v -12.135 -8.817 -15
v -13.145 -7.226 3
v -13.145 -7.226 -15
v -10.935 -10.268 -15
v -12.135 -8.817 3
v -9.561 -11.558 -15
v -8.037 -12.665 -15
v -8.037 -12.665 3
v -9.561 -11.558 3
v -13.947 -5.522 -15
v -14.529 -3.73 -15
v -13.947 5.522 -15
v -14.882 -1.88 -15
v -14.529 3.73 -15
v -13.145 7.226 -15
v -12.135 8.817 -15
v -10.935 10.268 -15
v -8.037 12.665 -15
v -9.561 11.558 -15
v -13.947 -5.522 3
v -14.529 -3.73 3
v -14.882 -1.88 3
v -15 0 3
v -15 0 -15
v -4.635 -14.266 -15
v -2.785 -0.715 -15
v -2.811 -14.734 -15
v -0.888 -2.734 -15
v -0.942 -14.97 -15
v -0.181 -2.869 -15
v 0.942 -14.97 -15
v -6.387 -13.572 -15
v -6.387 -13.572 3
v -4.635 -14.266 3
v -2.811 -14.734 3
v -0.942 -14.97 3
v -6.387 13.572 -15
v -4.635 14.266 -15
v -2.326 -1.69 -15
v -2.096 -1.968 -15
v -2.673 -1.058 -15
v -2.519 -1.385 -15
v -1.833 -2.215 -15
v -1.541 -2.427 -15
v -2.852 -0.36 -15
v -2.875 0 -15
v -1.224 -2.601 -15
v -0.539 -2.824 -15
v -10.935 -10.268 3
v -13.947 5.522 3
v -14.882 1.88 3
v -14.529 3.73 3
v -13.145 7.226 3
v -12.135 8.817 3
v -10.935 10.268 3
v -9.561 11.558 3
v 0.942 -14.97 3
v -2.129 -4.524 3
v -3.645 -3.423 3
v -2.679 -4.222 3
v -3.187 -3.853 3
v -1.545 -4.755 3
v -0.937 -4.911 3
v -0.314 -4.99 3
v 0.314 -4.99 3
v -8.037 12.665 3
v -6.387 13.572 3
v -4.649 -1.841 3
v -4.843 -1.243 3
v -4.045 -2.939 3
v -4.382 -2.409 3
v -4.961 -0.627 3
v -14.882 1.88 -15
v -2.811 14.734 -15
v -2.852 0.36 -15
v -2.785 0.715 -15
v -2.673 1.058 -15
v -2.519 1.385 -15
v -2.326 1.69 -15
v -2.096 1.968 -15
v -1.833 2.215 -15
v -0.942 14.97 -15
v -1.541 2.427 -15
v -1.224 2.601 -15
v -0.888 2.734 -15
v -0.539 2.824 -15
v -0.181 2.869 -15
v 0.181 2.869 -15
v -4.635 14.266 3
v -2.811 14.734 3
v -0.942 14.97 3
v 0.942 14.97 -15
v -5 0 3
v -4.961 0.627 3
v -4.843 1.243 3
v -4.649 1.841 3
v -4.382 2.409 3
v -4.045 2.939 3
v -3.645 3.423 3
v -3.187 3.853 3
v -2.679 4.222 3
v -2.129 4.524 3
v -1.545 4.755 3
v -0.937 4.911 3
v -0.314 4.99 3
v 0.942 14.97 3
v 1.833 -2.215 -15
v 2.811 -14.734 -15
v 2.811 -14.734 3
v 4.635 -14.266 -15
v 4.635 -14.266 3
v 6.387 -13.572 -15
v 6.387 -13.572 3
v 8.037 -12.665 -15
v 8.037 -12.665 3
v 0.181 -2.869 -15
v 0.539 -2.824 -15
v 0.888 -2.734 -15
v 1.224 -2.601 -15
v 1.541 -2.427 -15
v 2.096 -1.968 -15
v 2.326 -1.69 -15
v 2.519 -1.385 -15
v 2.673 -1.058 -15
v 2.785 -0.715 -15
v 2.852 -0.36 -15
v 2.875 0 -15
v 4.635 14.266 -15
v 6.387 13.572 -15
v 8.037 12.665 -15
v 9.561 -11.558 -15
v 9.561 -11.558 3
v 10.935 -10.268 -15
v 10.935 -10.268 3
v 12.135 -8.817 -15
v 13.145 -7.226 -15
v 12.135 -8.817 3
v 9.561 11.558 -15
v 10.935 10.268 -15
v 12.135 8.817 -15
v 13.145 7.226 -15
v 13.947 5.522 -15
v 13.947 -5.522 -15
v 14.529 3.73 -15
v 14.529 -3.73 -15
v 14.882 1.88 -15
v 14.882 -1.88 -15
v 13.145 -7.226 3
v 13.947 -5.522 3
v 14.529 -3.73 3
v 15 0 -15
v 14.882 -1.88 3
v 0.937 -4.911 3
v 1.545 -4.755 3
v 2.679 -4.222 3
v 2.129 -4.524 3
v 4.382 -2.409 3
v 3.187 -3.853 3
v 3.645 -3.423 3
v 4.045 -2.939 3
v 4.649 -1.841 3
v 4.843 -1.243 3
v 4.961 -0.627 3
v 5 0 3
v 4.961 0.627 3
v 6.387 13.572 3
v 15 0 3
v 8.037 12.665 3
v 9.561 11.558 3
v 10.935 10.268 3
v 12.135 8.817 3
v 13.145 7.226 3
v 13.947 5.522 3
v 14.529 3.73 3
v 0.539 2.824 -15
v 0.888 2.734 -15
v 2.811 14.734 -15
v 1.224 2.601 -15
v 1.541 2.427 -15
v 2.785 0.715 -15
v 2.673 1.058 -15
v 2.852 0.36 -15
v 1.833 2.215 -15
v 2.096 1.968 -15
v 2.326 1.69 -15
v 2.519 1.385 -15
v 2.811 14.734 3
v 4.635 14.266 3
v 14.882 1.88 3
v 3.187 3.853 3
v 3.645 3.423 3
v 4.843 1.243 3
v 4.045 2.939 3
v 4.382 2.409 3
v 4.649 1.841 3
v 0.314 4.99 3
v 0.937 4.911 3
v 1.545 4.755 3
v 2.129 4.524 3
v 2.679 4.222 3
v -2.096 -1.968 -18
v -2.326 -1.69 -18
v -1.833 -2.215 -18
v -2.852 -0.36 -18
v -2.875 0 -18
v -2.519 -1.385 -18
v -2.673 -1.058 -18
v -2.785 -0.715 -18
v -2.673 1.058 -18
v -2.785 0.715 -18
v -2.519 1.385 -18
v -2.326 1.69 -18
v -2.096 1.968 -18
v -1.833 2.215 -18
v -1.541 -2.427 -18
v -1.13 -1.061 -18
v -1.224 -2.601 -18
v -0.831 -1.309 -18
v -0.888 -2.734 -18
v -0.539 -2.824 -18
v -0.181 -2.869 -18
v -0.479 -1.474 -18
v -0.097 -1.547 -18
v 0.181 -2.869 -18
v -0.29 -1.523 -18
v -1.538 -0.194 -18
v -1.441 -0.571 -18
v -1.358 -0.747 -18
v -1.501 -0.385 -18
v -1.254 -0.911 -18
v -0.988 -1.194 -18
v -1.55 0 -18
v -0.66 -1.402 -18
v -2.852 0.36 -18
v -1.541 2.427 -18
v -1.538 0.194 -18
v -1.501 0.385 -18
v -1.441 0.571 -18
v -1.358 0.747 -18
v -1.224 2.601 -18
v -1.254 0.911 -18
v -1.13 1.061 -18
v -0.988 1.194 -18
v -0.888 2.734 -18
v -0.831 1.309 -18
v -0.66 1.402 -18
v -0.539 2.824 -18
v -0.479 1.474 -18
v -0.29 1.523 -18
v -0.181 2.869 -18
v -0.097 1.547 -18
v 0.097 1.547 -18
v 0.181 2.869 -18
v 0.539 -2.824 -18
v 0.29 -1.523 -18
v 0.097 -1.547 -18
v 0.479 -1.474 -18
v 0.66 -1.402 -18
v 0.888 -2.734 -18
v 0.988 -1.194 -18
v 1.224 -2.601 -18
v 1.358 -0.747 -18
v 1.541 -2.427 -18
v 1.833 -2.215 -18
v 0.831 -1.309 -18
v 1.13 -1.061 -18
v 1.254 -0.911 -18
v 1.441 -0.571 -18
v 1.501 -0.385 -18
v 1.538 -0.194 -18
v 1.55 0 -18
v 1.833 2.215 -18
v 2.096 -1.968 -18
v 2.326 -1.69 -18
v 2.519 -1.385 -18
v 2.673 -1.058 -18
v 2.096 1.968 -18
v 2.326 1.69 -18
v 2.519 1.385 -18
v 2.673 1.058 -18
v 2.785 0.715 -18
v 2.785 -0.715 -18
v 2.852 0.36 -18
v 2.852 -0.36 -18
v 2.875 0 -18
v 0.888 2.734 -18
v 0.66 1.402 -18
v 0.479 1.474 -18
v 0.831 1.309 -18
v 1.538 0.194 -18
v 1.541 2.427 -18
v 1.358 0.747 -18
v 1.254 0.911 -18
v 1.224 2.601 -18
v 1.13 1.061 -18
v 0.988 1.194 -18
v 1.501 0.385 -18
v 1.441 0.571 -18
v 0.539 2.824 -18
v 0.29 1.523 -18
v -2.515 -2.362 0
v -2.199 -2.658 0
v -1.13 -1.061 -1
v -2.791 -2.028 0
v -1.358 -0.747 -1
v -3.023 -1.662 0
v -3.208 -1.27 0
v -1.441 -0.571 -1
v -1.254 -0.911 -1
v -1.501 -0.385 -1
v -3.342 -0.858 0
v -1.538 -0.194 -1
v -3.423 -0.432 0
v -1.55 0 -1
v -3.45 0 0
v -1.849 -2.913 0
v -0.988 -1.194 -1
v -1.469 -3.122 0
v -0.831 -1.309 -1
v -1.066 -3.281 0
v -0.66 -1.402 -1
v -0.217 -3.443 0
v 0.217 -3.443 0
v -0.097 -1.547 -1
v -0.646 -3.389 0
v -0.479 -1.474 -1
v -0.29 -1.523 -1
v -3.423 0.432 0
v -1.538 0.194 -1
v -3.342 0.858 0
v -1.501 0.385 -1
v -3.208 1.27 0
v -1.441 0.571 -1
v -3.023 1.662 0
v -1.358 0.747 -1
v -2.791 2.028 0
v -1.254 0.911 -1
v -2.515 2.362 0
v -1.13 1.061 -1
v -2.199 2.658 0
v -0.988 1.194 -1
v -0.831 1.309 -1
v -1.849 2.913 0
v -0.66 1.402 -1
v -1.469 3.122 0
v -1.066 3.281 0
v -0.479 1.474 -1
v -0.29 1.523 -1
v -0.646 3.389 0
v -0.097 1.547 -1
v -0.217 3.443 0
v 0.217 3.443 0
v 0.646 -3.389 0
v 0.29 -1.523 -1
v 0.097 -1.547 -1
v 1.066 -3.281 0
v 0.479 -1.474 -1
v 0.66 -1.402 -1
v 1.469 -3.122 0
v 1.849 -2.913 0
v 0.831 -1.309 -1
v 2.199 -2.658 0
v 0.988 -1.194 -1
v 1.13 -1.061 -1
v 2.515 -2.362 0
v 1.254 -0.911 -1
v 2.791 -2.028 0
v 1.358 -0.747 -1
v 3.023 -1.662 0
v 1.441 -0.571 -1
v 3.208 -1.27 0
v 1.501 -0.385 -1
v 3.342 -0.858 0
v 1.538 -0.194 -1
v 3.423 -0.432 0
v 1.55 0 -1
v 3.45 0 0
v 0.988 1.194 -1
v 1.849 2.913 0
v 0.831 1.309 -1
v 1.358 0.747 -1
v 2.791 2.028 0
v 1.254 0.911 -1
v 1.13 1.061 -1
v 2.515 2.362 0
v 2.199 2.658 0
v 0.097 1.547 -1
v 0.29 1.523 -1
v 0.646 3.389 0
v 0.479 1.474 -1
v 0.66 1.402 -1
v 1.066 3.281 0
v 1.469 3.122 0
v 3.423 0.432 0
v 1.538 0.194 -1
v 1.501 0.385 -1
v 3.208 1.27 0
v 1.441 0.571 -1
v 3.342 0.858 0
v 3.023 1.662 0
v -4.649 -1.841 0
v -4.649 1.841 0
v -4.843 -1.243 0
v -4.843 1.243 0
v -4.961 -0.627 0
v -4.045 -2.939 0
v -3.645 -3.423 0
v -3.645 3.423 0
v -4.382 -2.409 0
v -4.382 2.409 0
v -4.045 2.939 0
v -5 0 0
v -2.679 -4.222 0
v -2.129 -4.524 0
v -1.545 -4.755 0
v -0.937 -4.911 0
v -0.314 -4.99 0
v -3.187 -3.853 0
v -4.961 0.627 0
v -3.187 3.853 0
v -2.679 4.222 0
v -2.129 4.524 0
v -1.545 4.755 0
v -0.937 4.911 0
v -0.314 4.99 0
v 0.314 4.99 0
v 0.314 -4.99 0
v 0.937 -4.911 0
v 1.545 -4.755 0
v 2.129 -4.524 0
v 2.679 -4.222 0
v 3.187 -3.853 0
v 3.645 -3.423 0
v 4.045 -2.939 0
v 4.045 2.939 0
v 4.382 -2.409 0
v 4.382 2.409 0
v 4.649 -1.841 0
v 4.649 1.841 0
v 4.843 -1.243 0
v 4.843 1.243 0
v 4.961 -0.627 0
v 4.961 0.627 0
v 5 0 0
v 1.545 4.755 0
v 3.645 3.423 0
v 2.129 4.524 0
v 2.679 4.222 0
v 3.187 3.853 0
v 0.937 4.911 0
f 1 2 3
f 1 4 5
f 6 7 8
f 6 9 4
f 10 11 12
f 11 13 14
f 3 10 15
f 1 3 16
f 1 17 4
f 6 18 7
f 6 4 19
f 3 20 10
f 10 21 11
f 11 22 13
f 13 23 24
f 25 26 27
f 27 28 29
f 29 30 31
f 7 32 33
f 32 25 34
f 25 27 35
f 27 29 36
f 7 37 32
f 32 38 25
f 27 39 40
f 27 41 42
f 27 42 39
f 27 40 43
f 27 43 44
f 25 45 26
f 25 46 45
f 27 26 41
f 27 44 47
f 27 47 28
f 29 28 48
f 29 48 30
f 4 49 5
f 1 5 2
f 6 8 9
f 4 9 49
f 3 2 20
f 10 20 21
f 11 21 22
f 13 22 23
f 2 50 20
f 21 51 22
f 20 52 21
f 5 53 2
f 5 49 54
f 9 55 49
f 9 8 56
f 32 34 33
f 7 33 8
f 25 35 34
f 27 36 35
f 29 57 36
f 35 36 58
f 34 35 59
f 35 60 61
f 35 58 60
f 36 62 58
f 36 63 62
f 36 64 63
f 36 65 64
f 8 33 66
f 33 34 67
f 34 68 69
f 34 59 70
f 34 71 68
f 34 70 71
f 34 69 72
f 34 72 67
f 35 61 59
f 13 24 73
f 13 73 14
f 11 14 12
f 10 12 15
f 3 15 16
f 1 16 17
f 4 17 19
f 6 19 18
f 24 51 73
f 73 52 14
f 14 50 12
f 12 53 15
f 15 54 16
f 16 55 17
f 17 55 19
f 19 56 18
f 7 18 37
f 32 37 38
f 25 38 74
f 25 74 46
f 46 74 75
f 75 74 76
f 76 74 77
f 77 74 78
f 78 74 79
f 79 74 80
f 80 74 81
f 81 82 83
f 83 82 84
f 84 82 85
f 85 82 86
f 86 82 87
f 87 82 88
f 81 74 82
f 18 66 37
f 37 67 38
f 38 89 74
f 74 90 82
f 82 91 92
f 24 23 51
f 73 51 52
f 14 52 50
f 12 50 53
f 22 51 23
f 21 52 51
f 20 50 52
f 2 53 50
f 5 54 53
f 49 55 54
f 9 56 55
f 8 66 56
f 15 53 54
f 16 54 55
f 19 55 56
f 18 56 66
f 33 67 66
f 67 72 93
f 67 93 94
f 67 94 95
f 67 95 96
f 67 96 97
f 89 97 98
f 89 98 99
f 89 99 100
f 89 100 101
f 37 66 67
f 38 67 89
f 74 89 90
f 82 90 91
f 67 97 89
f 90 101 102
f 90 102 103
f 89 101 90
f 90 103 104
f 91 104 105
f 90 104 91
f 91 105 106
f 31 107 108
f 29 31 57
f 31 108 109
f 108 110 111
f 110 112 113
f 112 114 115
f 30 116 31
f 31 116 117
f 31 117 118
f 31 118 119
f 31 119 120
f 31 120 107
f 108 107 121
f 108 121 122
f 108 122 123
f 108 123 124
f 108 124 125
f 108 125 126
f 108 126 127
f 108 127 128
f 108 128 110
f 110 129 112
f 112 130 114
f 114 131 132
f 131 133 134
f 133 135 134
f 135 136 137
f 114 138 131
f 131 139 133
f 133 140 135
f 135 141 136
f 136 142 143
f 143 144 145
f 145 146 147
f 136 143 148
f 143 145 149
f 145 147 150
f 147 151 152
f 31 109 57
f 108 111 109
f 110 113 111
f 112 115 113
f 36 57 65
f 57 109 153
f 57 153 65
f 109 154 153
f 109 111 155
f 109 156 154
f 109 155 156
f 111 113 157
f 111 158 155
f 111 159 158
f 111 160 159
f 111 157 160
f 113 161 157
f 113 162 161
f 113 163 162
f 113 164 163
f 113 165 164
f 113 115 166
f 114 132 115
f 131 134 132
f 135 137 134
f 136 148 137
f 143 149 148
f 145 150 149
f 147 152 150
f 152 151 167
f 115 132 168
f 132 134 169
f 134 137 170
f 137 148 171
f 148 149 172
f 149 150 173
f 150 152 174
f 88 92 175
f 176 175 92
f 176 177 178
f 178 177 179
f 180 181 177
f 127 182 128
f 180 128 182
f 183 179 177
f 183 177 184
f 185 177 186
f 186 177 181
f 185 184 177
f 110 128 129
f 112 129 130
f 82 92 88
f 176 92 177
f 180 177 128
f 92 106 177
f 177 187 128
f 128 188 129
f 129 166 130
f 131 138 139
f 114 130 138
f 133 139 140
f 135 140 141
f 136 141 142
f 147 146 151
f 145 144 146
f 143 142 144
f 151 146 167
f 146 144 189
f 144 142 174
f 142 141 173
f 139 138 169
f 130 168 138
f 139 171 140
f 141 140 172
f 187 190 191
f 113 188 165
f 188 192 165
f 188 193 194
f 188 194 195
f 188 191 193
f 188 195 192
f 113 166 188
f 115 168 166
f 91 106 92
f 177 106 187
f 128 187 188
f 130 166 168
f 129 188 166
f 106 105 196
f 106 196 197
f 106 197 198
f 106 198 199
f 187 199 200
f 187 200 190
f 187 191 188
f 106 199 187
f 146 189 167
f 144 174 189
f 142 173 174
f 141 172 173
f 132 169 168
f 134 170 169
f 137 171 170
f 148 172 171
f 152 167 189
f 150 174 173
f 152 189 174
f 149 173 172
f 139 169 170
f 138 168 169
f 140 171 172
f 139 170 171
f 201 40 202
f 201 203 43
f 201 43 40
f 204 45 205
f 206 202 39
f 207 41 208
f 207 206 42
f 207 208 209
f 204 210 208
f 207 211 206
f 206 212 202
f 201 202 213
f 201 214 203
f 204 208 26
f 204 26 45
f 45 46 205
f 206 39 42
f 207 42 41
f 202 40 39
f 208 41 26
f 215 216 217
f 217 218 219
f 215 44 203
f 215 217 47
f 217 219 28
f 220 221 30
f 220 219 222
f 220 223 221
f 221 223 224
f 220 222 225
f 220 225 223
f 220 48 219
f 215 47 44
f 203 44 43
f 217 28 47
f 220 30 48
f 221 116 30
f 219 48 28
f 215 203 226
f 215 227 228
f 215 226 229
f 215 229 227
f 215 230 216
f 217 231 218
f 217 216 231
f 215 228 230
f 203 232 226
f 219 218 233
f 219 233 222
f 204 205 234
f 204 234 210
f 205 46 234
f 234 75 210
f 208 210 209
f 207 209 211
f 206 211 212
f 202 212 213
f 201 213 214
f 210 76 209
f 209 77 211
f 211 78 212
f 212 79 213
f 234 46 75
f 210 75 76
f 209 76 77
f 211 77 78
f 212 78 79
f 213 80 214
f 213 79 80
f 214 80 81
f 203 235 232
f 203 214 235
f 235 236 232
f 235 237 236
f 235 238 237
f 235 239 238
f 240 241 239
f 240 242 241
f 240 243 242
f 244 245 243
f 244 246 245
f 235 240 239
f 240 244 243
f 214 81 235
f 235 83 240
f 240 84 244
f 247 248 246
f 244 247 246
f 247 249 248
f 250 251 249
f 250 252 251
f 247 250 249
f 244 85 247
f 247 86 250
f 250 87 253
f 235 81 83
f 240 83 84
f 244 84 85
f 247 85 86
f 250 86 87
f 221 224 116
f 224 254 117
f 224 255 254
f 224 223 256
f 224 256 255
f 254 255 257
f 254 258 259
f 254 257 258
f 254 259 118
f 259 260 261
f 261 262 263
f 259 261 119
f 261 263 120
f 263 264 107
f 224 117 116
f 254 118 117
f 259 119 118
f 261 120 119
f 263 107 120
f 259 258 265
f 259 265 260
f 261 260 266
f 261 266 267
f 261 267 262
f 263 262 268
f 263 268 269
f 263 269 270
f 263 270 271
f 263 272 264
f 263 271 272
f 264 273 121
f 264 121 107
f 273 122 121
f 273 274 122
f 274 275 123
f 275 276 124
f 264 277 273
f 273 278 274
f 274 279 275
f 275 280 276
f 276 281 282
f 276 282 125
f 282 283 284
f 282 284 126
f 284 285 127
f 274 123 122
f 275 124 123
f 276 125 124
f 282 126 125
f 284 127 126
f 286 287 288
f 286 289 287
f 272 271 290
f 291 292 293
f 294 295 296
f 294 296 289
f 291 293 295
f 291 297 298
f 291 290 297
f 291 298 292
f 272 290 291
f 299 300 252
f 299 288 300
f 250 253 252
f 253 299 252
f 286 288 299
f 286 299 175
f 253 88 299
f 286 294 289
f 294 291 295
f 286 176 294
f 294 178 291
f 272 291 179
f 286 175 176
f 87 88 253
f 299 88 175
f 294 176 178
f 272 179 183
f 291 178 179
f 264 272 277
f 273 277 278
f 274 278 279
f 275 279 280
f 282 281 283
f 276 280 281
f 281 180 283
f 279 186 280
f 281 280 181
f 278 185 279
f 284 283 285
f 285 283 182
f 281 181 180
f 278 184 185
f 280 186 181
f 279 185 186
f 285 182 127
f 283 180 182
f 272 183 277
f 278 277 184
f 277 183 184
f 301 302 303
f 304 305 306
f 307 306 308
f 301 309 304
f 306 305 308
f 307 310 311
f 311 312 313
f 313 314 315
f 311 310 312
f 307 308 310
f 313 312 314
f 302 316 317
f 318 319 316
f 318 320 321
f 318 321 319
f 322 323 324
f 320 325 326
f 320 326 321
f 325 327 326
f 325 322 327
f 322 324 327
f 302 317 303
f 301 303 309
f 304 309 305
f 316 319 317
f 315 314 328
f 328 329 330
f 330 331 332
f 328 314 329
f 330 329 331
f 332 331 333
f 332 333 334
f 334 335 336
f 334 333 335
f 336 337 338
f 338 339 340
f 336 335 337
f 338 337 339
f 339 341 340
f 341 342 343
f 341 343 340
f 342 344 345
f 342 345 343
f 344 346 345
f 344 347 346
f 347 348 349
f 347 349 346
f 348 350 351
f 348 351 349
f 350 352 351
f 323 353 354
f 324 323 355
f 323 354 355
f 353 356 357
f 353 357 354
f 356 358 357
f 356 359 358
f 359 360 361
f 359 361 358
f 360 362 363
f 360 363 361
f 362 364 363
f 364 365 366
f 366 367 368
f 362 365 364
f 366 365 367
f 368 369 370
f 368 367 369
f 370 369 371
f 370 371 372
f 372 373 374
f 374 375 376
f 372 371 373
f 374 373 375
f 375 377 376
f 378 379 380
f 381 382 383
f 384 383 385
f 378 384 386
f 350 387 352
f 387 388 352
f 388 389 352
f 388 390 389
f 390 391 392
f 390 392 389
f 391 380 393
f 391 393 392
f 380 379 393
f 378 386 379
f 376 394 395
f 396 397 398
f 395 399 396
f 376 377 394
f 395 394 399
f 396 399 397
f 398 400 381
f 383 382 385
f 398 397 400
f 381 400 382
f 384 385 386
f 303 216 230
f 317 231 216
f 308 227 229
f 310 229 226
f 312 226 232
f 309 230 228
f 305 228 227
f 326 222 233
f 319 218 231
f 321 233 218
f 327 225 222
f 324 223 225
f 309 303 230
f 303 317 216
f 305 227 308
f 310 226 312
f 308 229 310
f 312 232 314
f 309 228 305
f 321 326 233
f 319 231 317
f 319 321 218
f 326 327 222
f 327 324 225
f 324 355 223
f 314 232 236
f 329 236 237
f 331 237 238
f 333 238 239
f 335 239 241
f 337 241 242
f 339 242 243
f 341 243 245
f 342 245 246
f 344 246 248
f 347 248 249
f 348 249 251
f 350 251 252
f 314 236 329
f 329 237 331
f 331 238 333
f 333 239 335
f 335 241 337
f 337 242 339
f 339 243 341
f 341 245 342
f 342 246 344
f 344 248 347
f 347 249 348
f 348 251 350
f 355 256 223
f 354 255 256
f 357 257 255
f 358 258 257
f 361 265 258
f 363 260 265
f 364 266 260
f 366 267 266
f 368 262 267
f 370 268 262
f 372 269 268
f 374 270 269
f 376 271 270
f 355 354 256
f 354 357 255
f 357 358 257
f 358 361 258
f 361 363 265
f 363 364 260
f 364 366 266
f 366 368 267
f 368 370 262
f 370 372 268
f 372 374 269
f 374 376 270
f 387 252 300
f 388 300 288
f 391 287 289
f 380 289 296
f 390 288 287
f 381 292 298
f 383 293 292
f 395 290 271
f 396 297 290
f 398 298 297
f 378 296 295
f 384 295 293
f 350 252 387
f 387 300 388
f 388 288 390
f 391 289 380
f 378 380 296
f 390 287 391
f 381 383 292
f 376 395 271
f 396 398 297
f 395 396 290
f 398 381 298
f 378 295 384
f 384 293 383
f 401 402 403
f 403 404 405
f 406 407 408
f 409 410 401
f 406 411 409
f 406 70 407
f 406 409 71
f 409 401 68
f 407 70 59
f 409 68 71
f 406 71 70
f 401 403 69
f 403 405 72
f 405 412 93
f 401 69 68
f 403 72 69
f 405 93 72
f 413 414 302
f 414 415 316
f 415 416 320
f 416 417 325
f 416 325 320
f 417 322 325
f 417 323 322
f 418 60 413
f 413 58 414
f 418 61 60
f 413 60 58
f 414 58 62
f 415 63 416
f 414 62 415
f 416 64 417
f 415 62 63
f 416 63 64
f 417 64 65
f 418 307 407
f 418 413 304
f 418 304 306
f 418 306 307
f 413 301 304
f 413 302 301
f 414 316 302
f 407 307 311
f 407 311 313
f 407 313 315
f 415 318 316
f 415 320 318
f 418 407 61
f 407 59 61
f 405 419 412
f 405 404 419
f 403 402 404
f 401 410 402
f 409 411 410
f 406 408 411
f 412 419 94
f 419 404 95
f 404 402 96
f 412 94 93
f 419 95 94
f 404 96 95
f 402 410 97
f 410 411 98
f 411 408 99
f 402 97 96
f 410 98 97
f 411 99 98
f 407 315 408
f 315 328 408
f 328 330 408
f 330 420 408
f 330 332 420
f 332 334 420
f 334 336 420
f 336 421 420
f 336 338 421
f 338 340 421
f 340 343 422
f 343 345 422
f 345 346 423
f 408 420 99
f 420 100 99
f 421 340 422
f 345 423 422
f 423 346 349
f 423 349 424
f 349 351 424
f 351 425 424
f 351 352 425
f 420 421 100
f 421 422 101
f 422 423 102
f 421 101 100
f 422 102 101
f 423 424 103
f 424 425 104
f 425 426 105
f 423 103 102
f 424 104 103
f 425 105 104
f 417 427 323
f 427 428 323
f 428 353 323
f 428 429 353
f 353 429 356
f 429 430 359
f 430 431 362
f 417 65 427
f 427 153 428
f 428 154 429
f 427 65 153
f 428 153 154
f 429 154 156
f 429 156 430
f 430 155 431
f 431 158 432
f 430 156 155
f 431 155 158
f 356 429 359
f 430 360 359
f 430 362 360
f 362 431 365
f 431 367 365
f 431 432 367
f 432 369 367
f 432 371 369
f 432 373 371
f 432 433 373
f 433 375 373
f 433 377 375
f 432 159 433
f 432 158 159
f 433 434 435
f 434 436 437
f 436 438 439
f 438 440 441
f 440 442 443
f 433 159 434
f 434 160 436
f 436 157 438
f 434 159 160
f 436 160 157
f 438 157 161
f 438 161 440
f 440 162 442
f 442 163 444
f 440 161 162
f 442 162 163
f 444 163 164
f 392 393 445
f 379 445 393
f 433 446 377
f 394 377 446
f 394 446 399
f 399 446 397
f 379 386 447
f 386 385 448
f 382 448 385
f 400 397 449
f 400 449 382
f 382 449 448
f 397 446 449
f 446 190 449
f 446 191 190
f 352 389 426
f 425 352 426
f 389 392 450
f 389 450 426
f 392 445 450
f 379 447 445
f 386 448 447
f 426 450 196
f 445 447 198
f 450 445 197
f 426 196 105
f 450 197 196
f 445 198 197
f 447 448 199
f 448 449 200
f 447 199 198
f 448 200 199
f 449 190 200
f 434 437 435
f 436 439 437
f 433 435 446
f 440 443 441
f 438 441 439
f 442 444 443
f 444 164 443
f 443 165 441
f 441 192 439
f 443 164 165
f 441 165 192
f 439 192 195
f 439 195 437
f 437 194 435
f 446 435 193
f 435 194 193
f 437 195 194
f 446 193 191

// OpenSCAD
$fn = 50;

difference() {
	union() {
		translate(v = [0, 0, -15.0]) {
			cylinder(h = 18, r = 15.0);
		}
		#translate(v = [0, 0, -18.0]) {
			cylinder(h = 18, r = 2.875);
		}
	}
	union() {
		translate(v = [0, 0, 0]) {
			rotate(a = [0, 0, 0]) {
				difference() {
					union() {
						translate(v = [0, 0, -18.0]) {
							cylinder(h = 18, r = 1.25);
						}
						translate(v = [0, 0, -1.0]) {
							cylinder(h = 1.0, r1 = 1.55, r2 = 3.45);
						}
						translate(v = [0, 0, -18.0]) {
							cylinder(h = 18, r = 1.55);
						}
						translate(v = [0, 0, -18.0]) {
							cylinder(h = 18, r = 1.25);
						}
					}
					union();
				}
			}
		}
		#cylinder(h = 3, r = 5.0);
	}
}
